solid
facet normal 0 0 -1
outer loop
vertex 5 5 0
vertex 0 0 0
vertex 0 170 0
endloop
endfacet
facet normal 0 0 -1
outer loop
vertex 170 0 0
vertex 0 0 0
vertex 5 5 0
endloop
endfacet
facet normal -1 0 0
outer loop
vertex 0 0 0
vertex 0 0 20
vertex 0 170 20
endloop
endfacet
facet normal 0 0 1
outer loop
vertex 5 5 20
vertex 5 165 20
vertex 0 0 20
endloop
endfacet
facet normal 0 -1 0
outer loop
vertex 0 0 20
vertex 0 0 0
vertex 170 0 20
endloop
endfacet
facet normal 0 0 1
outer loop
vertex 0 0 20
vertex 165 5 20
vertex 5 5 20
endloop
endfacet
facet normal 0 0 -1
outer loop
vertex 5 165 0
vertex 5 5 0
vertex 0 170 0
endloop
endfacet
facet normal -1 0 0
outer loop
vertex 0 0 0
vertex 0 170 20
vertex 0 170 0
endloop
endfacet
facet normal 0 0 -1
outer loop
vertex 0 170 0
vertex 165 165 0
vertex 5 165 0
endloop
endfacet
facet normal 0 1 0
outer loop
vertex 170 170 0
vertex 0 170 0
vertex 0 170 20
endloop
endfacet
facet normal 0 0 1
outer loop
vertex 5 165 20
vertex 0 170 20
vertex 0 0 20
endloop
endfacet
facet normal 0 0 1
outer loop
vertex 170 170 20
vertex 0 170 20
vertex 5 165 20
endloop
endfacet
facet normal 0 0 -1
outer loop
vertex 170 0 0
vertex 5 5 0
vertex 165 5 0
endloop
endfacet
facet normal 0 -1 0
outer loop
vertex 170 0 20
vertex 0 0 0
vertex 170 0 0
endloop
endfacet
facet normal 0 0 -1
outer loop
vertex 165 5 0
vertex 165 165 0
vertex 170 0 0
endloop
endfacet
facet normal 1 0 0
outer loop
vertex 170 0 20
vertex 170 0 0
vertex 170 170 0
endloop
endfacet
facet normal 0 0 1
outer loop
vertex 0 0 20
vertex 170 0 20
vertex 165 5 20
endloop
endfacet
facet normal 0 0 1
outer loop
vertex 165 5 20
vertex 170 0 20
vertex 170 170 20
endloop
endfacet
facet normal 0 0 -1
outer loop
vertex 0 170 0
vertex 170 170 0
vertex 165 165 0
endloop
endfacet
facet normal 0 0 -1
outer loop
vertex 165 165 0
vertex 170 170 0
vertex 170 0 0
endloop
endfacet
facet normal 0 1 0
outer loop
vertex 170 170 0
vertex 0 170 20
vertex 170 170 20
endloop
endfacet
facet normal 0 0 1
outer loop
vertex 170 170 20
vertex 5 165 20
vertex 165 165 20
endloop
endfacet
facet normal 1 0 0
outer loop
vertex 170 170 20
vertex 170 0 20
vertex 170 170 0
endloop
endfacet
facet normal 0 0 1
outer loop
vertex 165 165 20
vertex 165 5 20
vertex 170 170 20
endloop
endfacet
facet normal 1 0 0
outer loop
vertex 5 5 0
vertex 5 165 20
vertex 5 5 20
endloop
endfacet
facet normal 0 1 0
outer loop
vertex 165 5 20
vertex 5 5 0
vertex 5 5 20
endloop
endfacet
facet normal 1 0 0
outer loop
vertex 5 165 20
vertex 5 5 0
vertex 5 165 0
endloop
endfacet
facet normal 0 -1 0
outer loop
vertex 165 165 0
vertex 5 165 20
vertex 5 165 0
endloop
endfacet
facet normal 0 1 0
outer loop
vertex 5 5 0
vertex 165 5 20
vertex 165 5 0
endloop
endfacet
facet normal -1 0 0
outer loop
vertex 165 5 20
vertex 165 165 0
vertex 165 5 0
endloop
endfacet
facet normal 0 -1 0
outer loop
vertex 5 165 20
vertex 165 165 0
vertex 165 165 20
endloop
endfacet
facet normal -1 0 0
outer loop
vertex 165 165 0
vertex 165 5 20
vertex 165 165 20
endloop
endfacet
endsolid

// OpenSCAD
// Frame for city model
// Outer size: 170.0mm x 170.0mm x 20mm
// Inner size: 160.0mm x 160.0mm x 20mm
// Frame width: 5mm

difference() {
    // Outer block (10mm larger than main model)
    cube([170.0, 170.0, 20]);
    
    // Inner cutout (sized to match main model exactly)
    translate([5, 5, 0])
        cube([160.0, 160.0, 20]);
}
